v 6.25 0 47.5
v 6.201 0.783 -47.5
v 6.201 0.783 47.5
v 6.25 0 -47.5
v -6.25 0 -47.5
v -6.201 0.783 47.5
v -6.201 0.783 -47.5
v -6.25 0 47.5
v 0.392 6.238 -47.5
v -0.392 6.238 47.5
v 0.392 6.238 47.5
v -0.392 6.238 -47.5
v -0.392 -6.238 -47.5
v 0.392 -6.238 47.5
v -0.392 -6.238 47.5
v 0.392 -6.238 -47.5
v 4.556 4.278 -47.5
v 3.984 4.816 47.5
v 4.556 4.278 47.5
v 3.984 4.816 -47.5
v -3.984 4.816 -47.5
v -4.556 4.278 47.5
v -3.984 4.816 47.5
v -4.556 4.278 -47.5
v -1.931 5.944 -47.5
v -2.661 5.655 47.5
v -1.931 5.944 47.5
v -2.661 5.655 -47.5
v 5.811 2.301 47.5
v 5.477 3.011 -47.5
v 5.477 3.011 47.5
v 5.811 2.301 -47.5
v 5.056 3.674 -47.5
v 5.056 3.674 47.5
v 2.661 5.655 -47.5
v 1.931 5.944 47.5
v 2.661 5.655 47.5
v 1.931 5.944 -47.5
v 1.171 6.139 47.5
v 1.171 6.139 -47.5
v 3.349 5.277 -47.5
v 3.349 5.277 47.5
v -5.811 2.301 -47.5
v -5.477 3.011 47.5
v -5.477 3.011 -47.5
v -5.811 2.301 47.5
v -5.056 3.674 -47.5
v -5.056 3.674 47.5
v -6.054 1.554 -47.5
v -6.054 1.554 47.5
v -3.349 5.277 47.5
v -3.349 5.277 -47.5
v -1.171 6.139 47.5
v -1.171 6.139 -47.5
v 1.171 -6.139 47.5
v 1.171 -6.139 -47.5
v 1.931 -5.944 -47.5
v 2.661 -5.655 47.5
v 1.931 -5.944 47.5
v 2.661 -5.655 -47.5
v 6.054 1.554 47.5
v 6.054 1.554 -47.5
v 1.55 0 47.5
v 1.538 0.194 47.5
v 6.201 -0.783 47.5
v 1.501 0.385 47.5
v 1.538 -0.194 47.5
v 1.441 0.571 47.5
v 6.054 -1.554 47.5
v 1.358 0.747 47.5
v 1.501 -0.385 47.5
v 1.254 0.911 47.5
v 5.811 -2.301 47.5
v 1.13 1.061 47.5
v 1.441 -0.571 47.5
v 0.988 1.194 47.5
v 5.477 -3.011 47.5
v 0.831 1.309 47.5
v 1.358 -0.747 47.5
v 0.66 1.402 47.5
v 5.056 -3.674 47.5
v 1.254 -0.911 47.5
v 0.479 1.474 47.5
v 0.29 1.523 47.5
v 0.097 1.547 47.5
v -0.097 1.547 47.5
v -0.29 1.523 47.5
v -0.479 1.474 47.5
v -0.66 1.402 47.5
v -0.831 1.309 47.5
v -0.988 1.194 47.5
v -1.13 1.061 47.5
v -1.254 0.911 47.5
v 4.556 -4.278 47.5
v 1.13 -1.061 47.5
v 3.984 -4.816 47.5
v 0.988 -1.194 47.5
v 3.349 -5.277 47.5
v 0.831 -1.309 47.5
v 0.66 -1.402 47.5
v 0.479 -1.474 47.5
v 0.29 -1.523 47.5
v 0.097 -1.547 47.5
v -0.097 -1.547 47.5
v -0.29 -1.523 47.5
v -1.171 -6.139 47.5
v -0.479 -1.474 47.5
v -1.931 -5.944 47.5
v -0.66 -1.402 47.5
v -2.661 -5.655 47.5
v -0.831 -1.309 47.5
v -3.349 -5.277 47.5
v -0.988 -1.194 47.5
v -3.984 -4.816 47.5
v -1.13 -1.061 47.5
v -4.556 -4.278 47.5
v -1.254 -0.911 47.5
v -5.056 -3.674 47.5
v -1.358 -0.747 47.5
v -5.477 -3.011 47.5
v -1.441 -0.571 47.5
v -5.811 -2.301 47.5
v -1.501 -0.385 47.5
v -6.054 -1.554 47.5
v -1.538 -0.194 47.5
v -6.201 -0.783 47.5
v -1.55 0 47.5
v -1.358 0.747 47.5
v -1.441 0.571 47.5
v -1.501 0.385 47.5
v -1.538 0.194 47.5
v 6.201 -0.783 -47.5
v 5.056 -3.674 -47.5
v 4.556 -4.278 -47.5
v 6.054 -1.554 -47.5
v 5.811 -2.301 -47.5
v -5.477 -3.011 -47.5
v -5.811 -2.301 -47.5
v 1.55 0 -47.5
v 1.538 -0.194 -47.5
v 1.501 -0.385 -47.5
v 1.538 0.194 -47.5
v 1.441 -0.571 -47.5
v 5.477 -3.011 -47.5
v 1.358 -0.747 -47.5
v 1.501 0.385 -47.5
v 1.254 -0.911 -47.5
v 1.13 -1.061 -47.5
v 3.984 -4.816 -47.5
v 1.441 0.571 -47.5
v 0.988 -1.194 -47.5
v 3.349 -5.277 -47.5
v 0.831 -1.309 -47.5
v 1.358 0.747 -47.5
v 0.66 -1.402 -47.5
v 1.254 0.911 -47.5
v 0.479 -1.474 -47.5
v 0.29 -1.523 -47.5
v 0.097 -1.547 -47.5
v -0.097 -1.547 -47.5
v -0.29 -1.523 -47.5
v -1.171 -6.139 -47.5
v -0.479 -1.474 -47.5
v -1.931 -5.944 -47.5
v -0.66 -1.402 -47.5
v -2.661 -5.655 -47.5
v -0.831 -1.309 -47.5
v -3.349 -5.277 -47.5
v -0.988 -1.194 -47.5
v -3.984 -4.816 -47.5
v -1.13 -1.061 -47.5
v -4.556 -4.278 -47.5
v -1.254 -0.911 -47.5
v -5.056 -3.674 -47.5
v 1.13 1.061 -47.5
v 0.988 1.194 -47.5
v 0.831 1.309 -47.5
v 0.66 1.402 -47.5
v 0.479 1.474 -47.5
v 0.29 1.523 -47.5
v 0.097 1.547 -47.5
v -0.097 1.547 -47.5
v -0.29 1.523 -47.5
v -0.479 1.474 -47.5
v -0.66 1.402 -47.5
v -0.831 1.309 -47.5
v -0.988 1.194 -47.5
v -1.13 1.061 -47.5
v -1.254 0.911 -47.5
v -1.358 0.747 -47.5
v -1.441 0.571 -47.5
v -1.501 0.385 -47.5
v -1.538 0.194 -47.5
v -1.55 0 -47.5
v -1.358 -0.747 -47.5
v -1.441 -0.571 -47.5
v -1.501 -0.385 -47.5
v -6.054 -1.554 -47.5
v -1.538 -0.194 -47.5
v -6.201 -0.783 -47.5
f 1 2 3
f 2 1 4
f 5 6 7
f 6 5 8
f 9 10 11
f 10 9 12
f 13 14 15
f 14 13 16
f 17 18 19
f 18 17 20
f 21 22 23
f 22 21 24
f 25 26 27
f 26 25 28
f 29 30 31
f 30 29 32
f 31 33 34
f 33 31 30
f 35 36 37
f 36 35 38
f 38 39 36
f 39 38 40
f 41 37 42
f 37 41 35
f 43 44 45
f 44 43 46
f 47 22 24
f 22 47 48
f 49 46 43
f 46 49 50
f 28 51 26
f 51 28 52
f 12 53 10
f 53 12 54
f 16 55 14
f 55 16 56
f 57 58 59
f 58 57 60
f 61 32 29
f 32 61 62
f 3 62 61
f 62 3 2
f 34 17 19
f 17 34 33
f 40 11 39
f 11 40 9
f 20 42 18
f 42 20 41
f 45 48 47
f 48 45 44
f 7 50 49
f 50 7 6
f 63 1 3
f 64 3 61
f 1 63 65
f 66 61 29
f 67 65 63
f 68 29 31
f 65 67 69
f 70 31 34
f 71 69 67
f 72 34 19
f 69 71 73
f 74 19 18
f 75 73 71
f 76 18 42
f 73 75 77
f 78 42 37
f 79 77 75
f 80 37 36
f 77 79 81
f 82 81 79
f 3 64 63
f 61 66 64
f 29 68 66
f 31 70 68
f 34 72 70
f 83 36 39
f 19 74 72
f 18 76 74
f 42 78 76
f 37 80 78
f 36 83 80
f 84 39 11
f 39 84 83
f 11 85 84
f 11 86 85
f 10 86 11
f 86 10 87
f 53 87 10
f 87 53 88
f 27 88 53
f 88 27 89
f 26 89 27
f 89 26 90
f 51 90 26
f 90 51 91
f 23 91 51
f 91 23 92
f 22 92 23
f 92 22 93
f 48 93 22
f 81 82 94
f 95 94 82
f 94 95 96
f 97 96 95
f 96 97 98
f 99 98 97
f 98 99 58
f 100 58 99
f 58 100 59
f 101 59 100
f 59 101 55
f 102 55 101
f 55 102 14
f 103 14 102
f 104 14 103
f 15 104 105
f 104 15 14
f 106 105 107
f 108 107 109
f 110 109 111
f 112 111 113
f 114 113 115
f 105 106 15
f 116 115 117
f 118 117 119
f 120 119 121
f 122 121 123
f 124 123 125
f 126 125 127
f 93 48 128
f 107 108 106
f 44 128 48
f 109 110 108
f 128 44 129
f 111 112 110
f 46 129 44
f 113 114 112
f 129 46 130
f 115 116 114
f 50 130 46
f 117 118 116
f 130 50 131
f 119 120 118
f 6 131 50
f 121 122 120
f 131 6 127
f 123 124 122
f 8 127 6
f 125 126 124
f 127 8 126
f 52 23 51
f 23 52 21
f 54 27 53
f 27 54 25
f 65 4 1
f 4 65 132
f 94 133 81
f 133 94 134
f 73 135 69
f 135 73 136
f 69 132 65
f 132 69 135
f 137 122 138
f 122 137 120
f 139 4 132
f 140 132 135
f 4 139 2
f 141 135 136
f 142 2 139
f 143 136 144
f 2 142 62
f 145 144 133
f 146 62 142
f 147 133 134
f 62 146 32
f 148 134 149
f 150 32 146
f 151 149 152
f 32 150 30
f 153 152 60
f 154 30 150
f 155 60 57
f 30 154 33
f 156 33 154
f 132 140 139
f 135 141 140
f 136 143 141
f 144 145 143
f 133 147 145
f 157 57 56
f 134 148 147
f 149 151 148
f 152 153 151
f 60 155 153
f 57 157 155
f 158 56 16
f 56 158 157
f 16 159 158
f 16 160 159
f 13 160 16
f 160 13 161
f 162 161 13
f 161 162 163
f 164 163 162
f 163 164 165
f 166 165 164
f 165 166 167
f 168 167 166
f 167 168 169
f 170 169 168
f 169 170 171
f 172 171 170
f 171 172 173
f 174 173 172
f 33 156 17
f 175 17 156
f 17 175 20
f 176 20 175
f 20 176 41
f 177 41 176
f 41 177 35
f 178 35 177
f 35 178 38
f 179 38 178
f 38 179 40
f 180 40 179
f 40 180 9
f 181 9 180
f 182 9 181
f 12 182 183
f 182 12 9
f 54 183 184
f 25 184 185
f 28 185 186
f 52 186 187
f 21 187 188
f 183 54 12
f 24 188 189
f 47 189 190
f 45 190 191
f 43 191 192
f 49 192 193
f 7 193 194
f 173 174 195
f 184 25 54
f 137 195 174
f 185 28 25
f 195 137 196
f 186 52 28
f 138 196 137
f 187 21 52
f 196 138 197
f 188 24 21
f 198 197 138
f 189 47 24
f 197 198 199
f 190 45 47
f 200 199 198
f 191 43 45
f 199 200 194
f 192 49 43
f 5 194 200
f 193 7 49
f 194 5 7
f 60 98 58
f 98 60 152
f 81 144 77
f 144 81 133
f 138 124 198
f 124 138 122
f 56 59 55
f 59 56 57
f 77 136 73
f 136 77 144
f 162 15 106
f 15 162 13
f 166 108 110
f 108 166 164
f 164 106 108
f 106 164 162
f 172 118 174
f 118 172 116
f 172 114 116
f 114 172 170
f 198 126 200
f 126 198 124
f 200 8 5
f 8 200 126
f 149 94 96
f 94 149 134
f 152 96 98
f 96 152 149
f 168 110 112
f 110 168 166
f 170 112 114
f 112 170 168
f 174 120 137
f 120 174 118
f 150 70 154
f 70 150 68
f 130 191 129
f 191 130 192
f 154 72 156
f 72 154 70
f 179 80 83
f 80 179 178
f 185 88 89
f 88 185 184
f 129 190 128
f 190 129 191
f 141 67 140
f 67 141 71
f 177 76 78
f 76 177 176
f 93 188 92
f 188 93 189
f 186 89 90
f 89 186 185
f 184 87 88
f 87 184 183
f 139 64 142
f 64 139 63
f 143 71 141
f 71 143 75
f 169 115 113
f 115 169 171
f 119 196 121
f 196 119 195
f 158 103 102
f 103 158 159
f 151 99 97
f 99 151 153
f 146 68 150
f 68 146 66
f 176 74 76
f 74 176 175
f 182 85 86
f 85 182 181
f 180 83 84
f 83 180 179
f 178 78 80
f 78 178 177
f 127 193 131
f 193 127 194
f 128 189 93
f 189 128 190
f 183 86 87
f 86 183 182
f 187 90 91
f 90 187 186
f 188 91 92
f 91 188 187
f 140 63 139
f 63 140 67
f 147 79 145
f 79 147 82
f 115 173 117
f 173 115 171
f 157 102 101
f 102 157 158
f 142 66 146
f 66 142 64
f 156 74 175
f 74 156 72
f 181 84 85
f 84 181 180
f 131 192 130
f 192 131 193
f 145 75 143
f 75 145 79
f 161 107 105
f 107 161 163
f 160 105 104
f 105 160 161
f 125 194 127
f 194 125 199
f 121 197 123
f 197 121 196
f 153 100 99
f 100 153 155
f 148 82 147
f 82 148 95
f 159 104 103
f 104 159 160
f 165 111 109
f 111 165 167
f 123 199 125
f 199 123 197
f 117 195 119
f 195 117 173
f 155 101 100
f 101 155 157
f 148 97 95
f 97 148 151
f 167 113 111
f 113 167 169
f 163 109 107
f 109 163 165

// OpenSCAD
$fn = 50;


difference() {
	union() {
		translate(v = [0, 0, -47.5000000000]) {
			cylinder(h = 95, r = 6.2500000000);
		}
	}
	union() {
		translate(v = [0, 0, -100.0000000000]) {
			cylinder(h = 200, r = 1.5500000000);
		}
	}
}
